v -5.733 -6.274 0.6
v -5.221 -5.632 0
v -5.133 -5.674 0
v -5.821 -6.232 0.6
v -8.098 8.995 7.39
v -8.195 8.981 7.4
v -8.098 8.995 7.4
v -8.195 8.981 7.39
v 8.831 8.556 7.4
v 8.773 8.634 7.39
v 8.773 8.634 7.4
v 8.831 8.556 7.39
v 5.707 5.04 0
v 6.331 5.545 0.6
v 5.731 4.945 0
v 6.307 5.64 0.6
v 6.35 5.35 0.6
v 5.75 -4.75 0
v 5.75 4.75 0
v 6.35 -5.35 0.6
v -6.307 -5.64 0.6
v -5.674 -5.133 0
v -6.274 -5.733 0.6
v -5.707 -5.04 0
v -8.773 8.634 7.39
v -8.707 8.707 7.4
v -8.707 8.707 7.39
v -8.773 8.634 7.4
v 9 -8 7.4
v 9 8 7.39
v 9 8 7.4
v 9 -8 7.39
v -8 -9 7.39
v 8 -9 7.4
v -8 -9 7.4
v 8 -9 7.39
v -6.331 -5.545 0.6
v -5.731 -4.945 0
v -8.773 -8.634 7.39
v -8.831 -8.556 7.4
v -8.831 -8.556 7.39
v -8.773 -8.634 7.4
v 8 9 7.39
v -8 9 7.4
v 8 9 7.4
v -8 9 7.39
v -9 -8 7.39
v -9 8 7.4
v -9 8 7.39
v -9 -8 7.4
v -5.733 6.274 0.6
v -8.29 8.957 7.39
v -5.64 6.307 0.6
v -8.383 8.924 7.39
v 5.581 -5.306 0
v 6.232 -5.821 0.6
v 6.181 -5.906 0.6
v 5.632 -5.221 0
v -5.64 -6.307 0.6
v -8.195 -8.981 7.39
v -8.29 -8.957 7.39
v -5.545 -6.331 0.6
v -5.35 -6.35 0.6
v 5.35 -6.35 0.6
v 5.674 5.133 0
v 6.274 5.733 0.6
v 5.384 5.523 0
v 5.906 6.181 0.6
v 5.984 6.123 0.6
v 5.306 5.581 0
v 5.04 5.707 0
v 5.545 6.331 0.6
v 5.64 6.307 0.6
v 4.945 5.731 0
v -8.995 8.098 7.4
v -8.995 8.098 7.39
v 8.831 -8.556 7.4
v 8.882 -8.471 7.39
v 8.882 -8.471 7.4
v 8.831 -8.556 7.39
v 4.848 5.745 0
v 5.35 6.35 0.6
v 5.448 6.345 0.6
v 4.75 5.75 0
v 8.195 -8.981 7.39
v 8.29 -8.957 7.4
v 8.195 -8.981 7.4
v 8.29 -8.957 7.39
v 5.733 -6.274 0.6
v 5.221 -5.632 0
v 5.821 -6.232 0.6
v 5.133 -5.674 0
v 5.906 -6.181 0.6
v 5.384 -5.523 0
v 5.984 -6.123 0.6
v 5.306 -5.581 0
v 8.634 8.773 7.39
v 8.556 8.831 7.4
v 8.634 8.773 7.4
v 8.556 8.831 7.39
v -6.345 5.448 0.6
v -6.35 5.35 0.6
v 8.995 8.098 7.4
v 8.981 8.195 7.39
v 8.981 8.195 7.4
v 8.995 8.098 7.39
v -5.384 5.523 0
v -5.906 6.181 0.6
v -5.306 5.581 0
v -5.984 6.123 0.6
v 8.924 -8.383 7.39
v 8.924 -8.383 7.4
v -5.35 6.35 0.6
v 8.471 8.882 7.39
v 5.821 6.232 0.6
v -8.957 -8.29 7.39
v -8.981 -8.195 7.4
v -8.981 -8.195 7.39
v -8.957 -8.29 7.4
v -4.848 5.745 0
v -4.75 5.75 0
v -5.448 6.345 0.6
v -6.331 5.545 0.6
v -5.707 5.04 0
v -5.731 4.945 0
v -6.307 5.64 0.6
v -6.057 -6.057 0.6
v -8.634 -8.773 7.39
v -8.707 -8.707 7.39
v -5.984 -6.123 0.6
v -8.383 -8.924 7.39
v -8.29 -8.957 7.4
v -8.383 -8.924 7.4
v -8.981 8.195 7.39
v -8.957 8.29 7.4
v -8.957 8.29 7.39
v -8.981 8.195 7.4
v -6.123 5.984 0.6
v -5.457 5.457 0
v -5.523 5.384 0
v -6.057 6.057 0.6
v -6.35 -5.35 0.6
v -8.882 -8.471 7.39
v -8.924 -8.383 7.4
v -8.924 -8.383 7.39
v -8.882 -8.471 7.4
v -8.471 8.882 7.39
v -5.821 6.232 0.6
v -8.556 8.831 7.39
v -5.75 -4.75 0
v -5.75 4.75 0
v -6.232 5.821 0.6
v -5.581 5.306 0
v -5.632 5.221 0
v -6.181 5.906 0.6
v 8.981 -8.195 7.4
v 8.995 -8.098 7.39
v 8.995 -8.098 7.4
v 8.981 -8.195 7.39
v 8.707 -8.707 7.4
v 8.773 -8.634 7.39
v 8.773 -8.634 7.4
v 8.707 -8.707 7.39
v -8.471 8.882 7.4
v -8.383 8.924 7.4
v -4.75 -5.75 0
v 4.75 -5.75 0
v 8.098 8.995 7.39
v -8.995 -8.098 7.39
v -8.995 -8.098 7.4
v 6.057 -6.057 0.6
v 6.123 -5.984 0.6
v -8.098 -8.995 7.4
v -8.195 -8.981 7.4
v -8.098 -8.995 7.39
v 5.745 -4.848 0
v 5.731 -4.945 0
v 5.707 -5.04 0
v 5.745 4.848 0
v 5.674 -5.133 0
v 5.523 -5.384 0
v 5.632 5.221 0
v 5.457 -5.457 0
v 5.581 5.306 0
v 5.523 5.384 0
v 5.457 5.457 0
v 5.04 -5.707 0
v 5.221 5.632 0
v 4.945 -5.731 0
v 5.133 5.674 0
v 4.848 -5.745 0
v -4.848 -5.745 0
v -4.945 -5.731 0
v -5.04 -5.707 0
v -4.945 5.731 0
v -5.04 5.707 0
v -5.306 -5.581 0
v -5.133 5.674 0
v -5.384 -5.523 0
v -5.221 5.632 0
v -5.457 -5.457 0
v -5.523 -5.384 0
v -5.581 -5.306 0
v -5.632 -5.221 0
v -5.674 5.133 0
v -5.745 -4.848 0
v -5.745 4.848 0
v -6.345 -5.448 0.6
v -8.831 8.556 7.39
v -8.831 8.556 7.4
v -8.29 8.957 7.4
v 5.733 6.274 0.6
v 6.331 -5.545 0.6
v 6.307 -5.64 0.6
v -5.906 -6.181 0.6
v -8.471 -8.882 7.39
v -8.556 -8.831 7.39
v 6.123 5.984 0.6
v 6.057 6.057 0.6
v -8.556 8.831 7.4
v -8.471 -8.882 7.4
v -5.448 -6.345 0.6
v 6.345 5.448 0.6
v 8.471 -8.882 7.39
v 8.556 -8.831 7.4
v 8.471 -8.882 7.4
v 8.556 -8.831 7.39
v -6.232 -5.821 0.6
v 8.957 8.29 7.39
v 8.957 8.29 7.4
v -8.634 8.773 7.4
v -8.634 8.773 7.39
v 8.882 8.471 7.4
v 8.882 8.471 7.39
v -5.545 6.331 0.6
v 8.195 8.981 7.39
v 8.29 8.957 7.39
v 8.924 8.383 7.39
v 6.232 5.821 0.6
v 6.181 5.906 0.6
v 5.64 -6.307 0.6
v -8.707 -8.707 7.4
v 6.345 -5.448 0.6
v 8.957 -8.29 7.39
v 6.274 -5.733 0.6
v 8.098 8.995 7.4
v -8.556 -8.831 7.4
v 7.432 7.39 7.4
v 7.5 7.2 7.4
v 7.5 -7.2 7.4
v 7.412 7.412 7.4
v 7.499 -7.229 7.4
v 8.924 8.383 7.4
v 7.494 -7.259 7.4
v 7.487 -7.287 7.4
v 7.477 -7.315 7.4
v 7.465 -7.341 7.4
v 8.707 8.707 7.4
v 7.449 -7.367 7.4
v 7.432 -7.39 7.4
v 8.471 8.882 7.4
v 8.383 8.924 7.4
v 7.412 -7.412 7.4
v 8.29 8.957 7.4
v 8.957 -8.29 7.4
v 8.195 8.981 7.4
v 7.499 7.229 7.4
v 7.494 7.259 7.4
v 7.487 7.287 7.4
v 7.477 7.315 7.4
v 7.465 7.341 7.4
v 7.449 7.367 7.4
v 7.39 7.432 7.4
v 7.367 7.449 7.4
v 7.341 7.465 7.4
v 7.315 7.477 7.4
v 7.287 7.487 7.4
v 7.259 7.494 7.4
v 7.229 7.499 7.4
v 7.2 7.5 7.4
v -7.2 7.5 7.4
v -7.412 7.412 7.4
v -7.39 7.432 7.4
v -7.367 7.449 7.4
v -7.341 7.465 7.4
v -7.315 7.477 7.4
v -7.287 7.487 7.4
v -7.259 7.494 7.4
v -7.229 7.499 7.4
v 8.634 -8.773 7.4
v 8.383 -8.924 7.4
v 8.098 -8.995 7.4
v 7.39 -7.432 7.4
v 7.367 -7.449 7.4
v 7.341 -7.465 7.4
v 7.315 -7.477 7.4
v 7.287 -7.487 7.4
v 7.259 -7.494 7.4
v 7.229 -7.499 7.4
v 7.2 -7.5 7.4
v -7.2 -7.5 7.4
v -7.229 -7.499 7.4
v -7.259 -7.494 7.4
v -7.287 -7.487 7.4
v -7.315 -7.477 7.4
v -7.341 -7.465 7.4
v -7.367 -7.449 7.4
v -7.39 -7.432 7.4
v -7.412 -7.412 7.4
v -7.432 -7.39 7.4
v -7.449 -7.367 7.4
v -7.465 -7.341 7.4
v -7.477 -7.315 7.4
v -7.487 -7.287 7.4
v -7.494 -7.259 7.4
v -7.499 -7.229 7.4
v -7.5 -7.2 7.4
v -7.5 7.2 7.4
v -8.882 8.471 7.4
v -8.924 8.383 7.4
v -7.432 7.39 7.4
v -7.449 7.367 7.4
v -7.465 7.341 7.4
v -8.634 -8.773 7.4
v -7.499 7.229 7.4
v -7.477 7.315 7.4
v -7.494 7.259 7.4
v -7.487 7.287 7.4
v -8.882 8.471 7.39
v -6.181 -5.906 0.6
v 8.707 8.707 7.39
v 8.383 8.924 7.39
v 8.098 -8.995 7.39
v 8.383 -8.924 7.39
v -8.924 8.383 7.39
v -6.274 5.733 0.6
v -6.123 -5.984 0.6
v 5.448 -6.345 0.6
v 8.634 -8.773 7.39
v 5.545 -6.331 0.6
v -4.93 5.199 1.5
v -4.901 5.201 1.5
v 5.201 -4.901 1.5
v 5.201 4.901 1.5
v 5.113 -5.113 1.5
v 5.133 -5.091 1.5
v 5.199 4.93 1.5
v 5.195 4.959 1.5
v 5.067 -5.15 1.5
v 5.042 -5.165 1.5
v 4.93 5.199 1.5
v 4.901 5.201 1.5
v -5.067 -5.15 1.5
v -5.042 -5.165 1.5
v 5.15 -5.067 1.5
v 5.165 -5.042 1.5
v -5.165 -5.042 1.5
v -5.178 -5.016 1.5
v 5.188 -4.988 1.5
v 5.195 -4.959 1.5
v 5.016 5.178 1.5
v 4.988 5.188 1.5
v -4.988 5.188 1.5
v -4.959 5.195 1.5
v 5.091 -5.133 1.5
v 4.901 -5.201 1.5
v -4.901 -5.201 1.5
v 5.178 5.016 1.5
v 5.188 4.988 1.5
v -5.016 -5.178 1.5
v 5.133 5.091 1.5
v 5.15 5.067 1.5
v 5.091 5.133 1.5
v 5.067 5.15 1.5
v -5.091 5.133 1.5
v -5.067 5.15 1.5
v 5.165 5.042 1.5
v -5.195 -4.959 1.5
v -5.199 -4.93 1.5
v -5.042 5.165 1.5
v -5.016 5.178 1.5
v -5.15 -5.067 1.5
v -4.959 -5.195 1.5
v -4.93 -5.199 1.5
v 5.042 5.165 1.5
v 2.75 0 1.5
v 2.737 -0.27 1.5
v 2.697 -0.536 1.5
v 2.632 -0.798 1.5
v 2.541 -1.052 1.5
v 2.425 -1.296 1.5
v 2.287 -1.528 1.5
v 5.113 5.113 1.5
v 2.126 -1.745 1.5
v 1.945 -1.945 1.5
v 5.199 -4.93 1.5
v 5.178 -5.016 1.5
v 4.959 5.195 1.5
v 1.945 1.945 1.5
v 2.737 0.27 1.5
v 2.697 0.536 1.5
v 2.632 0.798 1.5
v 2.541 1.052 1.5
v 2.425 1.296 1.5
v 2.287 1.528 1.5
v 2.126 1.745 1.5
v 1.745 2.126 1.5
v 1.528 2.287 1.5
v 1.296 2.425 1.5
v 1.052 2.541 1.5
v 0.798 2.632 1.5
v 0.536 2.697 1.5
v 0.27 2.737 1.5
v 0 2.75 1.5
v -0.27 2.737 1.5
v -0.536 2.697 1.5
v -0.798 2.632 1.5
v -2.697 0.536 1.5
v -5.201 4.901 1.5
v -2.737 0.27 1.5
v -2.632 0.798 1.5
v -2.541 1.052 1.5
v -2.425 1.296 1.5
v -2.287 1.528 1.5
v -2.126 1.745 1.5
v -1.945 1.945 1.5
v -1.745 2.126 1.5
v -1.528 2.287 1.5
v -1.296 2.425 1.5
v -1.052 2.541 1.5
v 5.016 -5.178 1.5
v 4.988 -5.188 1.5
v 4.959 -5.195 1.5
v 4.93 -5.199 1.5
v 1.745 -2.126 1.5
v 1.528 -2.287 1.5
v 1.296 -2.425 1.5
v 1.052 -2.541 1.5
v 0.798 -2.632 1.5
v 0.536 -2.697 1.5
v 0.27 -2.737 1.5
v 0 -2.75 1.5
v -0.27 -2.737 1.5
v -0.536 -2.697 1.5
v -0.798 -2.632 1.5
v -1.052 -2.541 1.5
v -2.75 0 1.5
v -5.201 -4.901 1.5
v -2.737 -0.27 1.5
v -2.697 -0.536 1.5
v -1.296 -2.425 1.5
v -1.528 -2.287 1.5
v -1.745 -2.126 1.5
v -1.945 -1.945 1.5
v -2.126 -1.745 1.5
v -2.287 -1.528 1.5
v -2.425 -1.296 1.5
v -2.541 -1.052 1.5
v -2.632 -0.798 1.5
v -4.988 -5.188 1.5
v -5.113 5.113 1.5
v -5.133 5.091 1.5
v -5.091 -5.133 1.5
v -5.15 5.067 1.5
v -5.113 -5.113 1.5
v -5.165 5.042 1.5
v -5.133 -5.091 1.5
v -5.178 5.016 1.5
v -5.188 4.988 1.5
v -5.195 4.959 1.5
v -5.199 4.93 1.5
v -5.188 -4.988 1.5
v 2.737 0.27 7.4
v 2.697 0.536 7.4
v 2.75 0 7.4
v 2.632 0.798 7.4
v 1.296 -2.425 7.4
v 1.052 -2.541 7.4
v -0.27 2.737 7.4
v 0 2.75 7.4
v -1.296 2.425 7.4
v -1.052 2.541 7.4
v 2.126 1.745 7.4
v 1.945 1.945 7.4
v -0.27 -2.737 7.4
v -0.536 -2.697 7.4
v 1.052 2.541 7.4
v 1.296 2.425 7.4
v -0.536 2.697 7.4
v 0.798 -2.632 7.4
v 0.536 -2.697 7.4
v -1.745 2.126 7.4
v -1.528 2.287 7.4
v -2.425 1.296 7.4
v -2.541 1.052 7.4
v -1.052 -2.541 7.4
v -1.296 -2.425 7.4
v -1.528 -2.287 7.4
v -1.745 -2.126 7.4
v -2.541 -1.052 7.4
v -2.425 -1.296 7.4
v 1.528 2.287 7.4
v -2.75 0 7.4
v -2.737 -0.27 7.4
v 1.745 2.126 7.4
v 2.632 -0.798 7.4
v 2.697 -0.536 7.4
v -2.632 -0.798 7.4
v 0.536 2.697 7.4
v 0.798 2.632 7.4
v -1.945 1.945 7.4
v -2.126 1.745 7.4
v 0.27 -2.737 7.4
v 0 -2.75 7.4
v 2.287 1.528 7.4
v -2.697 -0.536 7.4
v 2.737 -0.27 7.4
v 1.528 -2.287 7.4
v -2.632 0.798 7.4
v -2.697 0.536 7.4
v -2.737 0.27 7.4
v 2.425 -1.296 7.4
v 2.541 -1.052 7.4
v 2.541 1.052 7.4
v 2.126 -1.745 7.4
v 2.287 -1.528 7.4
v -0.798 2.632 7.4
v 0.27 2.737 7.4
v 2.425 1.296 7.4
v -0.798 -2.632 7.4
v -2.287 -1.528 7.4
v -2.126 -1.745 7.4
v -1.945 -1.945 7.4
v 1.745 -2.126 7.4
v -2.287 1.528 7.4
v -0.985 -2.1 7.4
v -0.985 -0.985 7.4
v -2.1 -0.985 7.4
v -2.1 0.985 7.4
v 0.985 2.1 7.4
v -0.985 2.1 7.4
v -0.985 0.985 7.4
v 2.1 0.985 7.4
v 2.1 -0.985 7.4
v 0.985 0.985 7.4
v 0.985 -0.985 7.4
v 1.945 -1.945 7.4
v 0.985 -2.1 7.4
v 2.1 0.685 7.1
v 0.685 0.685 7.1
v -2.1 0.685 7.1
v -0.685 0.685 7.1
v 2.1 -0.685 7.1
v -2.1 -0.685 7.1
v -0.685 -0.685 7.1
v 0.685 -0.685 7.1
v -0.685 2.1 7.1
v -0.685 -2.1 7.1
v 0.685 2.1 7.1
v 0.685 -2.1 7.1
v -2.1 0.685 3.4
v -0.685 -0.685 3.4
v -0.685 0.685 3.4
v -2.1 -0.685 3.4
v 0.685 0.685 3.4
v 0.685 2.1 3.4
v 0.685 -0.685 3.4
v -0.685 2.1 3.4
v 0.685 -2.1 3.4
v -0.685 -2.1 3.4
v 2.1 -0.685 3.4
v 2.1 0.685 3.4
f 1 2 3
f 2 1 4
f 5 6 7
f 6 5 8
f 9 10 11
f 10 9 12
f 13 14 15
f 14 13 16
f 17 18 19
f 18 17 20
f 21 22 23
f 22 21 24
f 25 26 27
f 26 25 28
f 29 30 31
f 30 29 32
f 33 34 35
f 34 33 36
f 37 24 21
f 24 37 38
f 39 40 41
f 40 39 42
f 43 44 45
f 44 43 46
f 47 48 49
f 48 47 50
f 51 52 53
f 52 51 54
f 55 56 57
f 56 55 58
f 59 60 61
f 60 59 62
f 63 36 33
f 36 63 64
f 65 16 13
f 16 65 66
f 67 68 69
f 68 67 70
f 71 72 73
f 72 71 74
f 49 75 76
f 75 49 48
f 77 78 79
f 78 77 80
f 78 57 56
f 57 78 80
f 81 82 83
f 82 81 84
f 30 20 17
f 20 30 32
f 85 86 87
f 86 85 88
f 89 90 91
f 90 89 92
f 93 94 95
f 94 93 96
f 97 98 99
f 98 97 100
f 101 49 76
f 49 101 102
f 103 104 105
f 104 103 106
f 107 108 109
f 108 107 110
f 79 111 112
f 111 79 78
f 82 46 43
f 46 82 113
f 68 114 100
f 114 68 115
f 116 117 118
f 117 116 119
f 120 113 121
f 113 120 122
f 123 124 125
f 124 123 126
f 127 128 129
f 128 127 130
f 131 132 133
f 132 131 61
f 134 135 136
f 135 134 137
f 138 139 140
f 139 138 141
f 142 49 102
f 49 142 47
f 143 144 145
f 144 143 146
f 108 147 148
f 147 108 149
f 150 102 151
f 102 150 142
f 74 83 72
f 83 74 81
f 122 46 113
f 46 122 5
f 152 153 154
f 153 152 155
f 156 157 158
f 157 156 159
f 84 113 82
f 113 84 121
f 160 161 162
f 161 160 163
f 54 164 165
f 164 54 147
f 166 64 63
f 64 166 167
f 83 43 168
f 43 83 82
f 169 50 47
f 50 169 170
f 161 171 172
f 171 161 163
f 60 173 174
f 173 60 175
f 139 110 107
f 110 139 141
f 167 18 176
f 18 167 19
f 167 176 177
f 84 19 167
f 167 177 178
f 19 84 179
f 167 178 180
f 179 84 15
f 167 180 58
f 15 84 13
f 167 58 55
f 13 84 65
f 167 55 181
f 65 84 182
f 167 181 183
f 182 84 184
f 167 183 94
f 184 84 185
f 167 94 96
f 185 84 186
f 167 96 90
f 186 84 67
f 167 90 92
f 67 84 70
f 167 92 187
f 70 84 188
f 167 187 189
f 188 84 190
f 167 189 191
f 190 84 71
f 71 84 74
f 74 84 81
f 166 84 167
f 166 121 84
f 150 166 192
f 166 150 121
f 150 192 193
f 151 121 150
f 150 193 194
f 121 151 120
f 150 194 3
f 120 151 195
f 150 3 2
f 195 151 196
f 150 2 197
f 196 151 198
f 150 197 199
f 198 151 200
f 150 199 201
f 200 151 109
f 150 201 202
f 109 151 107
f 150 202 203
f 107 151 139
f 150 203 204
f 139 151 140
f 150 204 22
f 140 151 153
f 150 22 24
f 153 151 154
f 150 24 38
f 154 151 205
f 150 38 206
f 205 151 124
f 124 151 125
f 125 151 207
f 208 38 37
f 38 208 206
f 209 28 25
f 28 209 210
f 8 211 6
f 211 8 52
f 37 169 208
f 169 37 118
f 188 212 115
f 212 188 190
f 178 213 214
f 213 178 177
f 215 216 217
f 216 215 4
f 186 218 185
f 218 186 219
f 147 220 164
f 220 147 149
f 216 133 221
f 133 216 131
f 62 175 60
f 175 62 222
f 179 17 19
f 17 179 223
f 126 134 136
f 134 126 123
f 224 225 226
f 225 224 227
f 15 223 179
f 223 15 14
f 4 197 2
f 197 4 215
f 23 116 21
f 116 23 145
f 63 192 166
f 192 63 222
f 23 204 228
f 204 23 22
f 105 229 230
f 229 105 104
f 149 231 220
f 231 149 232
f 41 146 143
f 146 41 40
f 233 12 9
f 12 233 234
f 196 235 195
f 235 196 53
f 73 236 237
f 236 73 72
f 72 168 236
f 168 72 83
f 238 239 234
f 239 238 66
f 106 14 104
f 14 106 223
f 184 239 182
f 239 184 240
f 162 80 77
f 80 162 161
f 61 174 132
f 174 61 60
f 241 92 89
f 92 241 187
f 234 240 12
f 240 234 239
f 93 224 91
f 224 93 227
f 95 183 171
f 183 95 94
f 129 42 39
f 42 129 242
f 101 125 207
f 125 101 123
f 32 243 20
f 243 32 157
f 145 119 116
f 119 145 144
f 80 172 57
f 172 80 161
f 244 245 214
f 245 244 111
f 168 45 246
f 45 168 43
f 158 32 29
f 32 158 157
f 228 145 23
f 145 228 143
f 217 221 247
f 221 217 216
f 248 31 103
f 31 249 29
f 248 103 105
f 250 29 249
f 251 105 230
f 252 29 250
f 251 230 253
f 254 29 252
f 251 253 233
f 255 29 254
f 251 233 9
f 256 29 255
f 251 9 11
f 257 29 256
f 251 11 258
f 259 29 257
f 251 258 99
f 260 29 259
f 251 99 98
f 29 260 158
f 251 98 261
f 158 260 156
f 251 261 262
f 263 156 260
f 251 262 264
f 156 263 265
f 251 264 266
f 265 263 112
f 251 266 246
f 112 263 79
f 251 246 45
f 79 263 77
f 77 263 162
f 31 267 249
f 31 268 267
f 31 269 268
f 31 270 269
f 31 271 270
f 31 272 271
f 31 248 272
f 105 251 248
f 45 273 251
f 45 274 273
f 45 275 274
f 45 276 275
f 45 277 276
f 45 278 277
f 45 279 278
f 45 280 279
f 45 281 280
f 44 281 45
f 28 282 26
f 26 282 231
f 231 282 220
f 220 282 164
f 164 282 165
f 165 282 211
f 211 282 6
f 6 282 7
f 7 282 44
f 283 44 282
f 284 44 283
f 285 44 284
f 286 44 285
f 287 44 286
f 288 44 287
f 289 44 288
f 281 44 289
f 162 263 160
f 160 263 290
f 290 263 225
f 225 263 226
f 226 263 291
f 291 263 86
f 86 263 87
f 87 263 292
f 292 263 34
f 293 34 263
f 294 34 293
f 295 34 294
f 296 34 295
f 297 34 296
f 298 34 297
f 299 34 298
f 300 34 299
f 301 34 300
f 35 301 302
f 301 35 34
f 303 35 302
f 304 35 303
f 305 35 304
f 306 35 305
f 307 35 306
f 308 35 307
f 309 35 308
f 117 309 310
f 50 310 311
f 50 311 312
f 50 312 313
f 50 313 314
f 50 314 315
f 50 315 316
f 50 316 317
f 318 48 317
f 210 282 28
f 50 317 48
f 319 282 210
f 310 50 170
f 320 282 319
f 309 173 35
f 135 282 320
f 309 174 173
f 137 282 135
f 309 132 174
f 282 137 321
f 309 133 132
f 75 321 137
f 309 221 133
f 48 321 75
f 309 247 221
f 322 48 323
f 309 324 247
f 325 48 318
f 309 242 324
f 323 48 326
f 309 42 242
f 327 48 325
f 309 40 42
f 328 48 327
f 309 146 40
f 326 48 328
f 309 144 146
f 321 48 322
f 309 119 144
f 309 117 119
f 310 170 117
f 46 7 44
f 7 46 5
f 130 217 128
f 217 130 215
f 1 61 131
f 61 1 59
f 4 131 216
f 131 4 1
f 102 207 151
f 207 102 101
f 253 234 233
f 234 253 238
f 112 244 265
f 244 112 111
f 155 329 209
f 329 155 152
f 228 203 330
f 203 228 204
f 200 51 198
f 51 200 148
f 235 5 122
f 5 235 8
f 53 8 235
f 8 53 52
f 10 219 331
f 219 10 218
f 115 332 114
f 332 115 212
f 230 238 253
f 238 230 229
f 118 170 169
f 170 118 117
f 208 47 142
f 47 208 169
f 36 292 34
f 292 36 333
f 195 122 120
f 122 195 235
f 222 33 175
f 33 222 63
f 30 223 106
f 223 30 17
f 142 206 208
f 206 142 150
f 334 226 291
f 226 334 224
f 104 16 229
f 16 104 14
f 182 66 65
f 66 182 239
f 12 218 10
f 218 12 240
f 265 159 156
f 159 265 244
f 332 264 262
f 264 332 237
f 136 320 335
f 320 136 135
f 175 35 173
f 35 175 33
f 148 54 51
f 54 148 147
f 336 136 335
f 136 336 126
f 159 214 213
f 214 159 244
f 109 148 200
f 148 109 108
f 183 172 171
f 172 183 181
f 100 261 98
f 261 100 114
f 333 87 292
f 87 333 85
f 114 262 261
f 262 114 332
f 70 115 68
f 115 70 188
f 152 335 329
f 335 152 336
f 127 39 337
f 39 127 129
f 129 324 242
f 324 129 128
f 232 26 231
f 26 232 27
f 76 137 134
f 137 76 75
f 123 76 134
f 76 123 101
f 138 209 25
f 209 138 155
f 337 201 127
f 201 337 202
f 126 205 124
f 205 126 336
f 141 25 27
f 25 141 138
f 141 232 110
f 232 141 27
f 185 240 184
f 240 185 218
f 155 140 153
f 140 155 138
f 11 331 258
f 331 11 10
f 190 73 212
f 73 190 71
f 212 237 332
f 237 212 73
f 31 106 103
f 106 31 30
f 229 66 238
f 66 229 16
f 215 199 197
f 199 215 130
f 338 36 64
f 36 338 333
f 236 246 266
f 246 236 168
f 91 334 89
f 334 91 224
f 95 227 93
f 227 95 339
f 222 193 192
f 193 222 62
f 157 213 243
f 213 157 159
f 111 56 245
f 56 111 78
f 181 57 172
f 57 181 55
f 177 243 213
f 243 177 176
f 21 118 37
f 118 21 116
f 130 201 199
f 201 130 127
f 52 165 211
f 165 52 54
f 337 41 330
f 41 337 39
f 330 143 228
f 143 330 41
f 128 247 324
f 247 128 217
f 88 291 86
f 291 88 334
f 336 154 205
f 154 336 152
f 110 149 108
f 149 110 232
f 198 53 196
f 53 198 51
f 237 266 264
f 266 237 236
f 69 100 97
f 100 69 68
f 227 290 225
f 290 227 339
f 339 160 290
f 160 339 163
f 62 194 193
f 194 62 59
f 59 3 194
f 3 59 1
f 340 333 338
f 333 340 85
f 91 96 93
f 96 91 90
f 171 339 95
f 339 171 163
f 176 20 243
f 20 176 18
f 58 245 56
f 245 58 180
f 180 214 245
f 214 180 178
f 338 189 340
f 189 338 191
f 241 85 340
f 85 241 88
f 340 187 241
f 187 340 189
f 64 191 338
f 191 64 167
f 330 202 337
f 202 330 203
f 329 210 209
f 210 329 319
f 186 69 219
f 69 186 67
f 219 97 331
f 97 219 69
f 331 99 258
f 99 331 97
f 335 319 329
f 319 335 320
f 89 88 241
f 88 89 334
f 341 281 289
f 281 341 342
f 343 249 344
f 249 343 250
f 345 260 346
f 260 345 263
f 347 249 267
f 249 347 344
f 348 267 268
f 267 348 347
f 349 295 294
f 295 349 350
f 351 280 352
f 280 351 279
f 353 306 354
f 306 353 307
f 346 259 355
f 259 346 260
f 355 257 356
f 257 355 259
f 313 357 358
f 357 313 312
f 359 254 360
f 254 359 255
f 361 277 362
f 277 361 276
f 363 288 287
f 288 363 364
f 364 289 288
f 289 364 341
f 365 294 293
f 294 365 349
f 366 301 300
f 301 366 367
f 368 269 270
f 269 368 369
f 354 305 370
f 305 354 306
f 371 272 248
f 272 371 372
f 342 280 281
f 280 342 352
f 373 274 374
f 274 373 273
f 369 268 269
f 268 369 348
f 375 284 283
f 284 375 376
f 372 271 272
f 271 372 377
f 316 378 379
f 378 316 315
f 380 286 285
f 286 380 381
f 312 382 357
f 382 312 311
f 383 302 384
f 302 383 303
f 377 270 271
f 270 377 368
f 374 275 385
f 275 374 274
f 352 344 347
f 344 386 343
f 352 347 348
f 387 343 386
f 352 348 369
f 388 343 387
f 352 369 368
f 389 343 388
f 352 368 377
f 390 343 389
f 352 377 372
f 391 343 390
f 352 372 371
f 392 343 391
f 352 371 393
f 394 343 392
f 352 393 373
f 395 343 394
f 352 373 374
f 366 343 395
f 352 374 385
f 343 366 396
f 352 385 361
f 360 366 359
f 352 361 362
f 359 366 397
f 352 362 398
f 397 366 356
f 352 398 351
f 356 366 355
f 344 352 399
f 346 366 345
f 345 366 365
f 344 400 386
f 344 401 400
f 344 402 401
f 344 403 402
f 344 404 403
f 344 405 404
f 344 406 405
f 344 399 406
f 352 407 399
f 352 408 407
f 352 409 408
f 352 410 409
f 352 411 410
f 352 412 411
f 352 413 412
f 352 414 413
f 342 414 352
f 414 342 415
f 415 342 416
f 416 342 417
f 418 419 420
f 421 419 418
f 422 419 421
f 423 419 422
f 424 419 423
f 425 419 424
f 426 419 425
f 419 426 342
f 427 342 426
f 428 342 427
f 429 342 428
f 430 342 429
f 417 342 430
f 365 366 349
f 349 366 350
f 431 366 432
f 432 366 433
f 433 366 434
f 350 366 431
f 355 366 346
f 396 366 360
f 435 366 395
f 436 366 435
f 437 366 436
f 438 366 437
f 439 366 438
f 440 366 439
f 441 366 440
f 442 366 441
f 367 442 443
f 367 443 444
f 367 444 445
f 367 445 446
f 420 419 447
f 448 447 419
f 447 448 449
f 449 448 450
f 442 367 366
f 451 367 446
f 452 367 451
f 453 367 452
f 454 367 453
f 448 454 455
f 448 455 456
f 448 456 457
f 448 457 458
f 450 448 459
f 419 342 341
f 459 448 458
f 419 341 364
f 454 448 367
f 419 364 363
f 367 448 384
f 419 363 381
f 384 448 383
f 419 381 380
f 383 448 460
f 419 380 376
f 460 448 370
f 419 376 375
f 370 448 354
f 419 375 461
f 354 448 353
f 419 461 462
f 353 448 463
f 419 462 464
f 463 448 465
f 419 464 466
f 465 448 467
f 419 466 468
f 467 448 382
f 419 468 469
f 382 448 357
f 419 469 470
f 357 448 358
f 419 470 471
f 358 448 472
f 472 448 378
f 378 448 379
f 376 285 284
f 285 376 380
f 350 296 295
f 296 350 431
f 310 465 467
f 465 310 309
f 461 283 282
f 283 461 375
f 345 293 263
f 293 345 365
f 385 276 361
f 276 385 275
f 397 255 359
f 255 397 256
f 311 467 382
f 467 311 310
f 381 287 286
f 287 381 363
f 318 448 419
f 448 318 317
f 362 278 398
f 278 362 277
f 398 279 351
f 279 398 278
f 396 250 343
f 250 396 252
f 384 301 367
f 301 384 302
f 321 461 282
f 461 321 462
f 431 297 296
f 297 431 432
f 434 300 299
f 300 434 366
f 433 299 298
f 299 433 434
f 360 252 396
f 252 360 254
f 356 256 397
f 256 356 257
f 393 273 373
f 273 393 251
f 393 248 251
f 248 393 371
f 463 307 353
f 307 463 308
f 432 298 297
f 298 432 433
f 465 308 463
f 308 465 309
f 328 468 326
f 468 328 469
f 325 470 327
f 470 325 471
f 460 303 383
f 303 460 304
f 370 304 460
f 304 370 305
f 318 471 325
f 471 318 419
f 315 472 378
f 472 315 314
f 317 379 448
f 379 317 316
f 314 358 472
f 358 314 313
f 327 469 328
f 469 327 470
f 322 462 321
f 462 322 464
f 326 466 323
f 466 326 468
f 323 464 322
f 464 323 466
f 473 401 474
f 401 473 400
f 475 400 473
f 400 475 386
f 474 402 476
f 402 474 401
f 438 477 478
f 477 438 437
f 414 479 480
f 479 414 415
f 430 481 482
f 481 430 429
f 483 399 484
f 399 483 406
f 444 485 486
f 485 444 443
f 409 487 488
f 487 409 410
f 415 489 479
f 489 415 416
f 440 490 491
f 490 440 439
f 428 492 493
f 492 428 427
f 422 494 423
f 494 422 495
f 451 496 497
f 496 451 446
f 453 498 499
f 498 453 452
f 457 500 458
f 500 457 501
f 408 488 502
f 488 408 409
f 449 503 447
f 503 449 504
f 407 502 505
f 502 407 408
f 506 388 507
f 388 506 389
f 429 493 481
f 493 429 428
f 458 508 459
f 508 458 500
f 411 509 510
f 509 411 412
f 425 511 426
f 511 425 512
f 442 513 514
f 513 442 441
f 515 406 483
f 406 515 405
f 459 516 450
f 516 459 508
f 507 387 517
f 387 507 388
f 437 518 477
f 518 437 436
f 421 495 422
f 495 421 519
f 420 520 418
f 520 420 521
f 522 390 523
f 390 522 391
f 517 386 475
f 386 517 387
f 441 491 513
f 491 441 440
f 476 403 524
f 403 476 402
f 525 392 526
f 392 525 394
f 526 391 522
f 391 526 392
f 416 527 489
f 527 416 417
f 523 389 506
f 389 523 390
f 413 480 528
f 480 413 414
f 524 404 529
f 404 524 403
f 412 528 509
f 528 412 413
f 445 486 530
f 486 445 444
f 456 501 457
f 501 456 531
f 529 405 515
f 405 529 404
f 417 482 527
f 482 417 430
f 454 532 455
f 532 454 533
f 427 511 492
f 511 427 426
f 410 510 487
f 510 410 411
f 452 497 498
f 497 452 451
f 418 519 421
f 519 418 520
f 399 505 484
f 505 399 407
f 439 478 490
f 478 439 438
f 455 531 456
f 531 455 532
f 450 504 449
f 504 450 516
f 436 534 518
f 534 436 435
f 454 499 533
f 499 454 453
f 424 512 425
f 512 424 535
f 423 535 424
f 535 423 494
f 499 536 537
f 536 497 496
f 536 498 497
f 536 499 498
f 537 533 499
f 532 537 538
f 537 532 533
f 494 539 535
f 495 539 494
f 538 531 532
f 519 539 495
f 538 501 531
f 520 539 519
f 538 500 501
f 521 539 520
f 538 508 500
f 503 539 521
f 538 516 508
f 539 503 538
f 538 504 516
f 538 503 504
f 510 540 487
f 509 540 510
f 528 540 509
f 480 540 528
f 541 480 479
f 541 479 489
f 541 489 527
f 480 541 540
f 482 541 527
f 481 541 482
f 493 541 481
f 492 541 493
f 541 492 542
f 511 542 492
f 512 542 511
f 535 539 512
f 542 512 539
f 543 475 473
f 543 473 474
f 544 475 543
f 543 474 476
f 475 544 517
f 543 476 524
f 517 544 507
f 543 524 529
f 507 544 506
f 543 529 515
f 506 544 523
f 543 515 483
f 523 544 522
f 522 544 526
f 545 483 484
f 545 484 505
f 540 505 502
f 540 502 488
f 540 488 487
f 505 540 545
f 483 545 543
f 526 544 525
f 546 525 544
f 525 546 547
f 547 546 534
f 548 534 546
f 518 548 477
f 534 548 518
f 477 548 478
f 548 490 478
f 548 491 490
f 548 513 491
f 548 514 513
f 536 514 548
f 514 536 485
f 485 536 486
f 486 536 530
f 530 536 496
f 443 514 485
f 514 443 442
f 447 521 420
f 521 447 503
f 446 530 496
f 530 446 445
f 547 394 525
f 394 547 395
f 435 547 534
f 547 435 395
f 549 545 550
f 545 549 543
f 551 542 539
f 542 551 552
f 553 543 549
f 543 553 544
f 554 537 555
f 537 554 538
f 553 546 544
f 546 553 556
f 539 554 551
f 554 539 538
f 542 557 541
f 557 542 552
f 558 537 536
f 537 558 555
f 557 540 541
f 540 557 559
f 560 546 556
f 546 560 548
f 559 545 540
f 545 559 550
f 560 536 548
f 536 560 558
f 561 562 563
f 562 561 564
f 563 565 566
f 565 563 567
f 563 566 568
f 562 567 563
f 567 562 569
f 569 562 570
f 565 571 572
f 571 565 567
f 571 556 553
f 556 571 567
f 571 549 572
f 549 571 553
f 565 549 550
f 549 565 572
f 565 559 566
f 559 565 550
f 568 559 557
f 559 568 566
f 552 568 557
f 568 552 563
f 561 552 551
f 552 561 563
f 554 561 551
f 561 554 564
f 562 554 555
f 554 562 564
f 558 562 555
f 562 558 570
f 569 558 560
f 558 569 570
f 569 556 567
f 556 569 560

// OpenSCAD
// SPDX-FileCopyrightText: 2026 deemonoise
// SPDX-License-Identifier: CERN-OHL-S-2.0
// Source location: https://github.com/deemonoise/D-TRK
// Кейкап 1u под MX-шток (Outemu, Cherry, Gateron), плоский верх. Все размеры в мм.
// Печать верхом на стол, без поддержек: шток растёт от потолка вверх.
// Рендер: openscad -o stl/keycap.stl keycap.scad
//         openscad -o stl/keycap_test.stl -D 'part="test"' keycap.scad   (пластина подбора зазора креста)
//         openscad -o stl/keycap_play.stl -D 'legend="play"' keycap.scad   (подписи: play, shift, A, B, 1…8)

part   = "cap";   // "cap" — кейкап для печати, "test" — тестовая пластина
legend = "";      // подпись, гравировка в верхней грани: "play" — треугольник, "shift" — звезда, иначе текст ("" — без)

$fn = 64;

// ---------- Кейкап ----------
cap_w   = 18;     // основание (шаг сетки 19)
cap_top = 12.7;   // верхняя грань
cap_h   = 7.4;    // высота от низа юбки до верха
cap_r   = 1.0;    // скругление углов в плане
top_t   = 1.5;    // толщина верха
wall    = 1.5;    // стенка юбки (по нормали к основанию)
edge    = 0.6;    // фаска по верхней кромке (лежит на столе — против «слоновьей ноги»)

// ---------- Шток (замерить свич) ----------
stem_d     = 5.5;   // ⌀ штока кейкапа
cross_l    = 4.0;   // крест штока свича: длина луча
cross_w    = 1.17;  //   толщина луча
cross_clr  = 0.10;  // зазор на сторону; подобран по тестовой пластине (ABS GF, Outemu Brown)
cross_dp   = 4.0;   // глубина креста от низа штока
cross_cham = 0.3;   // фаска на входе креста

// ---------- Подпись ----------
legend_h  = 2.8;    // высота букв
legend_h1 = 6.0;    // высота подписи из 1–2 символов (штрих ~0,85 — держит краску)
legend_dp = 0.6;    // глубина гравировки
play_w    = 5.6;    // треугольник ▶: ширина
play_h    = 6.5;    //   высота
star_d    = 7.4;    // звезда ✱: размах лучей
star_w    = 1.3;    //   ширина луча

// ---------- Тестовая пластина ----------
test_clr = [0.05, 0.10, 0.15, 0.20, 0.25, 0.30];
test_pitch = 9;     // шаг штоков
test_t = 1.5;       // толщина пластины (= top_t, как потолок кейкапа)

stem_l = cap_h - top_t;   // шток от потолка до низа юбки
assert(cross_dp <= stem_l - 0.6, "крест глубже штока");
assert((stem_d - cross_l) / 2 - max(test_clr) >= 0.4, "стенка штока у торцов креста тоньше 0,4");
assert(cap_w - 2*wall > 14.2, "юбка уже корпуса свича (14 мм)");
echo(str("Кейкап: ", cap_w, " x ", cap_w, " x ", cap_h, " мм, крест ", cross_l + 2*cross_clr,
         " x ", cross_w + 2*cross_clr, " на глубину ", cross_dp));

// ---------- Модель (z = 0 — верх кейкапа, растёт вниз к юбке; так и печатается) ----------
module rsquare(w, r) { offset(r) square(w - 2*r, center = true); }

// внешняя форма: усечённая пирамида со скруглёнными углами, фаска у верха
module cap_outer() {
    hull() {
        linear_extrude(0.01) rsquare(cap_top - 2*edge, cap_r);
        translate([0, 0, edge]) linear_extrude(0.01) rsquare(cap_top, cap_r);
        translate([0, 0, cap_h - 0.01]) linear_extrude(0.01) rsquare(cap_w, cap_r);
    }
}

// полость: та же пирамида, отступ wall по горизонтали (стенки почти вертикальны), от потолка до низа
module cap_inner() {
    k = (cap_w - cap_top) / 2 / (cap_h - edge);   // уширение на мм высоты
    hull() {
        translate([0, 0, top_t]) linear_extrude(0.01) rsquare(cap_top + 2*k*(top_t - edge) - 2*wall, max(cap_r - wall, 0.3));
        translate([0, 0, cap_h]) linear_extrude(0.01) rsquare(cap_w - 2*wall, max(cap_r - wall, 0.3));
        translate([0, 0, cap_h + 1]) linear_extrude(0.01) rsquare(cap_w - 2*wall + 2*k, max(cap_r - wall, 0.3));
    }
}

module cross_2d(clr) {
    square([cross_l + 2*clr, cross_w + 2*clr], center = true);
    square([cross_w + 2*clr, cross_l + 2*clr], center = true);
}

// гнездо креста: открыто в z_open (низ штока), глубина cross_dp, фаска cross_cham по толщине каждого луча
module cross_socket(z_open, clr) {
    translate([0, 0, z_open - cross_dp]) linear_extrude(cross_dp + 1) cross_2d(clr);
    for (a = [0, 90]) rotate(a) hull() {
        translate([0, 0, z_open - cross_cham]) linear_extrude(0.01)
            square([cross_l + 2*clr, cross_w + 2*clr], center = true);
        translate([0, 0, z_open]) linear_extrude(0.01)
            square([cross_l + 2*clr, cross_w + 2*clr + 2*cross_cham], center = true);   // по длине — без фаски: стенка штока у торцов
    }
}

// подпись в плане, как видна сверху
module legend_2d() {
    if (legend == "play")
        // центр масс в начале координат — на глаз стоит по центру
        offset(0.3) offset(-0.3) polygon([[-play_w/3, -play_h/2], [-play_w/3, play_h/2], [2*play_w/3, 0]]);
    else if (legend == "shift")
        for (a = [0, 60, 120]) rotate(a + 90) hull()
            for (x = [-1, 1]) translate([x * (star_d - star_w)/2, 0]) circle(d = star_w);
    else
        text(legend, size = len(legend) <= 2 ? legend_h1 : legend_h, font = "Liberation Sans:style=Bold",
             halign = "center", valign = "center");
}

module keycap() {
    difference() {
        union() {
            difference() {
                cap_outer();
                cap_inner();
            }
            translate([0, 0, top_t - 0.01]) cylinder(d = stem_d, h = stem_l + 0.01);
        }
        cross_socket(cap_h, cross_clr);
        // подпись в верхней грани, читается при виде сверху (в печати — зеркально, лицом на стол)
        if (legend != "")
            translate([0, 0, -0.01]) linear_extrude(legend_dp + 0.01) mirror([1, 0, 0]) legend_2d();
    }
}

// Тестовая пластина: штоки как в кейкапе, разные зазоры креста; номер = зазор в сотых мм
module test_plate() {
    n = len(test_clr);
    difference() {
        union() {
            translate([0, -5, 0]) linear_extrude(test_t) offset(1) offset(-1) square([n * test_pitch, 14]);
            for (i = [0 : n - 1]) translate([(i + 0.5) * test_pitch, 3.5, test_t - 0.01])
                cylinder(d = stem_d, h = stem_l + 0.01);
        }
        for (i = [0 : n - 1]) translate([(i + 0.5) * test_pitch, 3.5, 0]) {
            cross_socket(test_t + stem_l, test_clr[i]);
            translate([0, -6, test_t - 0.5]) linear_extrude(1)
                text(str(round(test_clr[i] * 100)), size = 3, font = "Liberation Sans:style=Bold",
                     halign = "center", valign = "center");
        }
    }
}

if (part == "test") test_plate();
else keycap();
